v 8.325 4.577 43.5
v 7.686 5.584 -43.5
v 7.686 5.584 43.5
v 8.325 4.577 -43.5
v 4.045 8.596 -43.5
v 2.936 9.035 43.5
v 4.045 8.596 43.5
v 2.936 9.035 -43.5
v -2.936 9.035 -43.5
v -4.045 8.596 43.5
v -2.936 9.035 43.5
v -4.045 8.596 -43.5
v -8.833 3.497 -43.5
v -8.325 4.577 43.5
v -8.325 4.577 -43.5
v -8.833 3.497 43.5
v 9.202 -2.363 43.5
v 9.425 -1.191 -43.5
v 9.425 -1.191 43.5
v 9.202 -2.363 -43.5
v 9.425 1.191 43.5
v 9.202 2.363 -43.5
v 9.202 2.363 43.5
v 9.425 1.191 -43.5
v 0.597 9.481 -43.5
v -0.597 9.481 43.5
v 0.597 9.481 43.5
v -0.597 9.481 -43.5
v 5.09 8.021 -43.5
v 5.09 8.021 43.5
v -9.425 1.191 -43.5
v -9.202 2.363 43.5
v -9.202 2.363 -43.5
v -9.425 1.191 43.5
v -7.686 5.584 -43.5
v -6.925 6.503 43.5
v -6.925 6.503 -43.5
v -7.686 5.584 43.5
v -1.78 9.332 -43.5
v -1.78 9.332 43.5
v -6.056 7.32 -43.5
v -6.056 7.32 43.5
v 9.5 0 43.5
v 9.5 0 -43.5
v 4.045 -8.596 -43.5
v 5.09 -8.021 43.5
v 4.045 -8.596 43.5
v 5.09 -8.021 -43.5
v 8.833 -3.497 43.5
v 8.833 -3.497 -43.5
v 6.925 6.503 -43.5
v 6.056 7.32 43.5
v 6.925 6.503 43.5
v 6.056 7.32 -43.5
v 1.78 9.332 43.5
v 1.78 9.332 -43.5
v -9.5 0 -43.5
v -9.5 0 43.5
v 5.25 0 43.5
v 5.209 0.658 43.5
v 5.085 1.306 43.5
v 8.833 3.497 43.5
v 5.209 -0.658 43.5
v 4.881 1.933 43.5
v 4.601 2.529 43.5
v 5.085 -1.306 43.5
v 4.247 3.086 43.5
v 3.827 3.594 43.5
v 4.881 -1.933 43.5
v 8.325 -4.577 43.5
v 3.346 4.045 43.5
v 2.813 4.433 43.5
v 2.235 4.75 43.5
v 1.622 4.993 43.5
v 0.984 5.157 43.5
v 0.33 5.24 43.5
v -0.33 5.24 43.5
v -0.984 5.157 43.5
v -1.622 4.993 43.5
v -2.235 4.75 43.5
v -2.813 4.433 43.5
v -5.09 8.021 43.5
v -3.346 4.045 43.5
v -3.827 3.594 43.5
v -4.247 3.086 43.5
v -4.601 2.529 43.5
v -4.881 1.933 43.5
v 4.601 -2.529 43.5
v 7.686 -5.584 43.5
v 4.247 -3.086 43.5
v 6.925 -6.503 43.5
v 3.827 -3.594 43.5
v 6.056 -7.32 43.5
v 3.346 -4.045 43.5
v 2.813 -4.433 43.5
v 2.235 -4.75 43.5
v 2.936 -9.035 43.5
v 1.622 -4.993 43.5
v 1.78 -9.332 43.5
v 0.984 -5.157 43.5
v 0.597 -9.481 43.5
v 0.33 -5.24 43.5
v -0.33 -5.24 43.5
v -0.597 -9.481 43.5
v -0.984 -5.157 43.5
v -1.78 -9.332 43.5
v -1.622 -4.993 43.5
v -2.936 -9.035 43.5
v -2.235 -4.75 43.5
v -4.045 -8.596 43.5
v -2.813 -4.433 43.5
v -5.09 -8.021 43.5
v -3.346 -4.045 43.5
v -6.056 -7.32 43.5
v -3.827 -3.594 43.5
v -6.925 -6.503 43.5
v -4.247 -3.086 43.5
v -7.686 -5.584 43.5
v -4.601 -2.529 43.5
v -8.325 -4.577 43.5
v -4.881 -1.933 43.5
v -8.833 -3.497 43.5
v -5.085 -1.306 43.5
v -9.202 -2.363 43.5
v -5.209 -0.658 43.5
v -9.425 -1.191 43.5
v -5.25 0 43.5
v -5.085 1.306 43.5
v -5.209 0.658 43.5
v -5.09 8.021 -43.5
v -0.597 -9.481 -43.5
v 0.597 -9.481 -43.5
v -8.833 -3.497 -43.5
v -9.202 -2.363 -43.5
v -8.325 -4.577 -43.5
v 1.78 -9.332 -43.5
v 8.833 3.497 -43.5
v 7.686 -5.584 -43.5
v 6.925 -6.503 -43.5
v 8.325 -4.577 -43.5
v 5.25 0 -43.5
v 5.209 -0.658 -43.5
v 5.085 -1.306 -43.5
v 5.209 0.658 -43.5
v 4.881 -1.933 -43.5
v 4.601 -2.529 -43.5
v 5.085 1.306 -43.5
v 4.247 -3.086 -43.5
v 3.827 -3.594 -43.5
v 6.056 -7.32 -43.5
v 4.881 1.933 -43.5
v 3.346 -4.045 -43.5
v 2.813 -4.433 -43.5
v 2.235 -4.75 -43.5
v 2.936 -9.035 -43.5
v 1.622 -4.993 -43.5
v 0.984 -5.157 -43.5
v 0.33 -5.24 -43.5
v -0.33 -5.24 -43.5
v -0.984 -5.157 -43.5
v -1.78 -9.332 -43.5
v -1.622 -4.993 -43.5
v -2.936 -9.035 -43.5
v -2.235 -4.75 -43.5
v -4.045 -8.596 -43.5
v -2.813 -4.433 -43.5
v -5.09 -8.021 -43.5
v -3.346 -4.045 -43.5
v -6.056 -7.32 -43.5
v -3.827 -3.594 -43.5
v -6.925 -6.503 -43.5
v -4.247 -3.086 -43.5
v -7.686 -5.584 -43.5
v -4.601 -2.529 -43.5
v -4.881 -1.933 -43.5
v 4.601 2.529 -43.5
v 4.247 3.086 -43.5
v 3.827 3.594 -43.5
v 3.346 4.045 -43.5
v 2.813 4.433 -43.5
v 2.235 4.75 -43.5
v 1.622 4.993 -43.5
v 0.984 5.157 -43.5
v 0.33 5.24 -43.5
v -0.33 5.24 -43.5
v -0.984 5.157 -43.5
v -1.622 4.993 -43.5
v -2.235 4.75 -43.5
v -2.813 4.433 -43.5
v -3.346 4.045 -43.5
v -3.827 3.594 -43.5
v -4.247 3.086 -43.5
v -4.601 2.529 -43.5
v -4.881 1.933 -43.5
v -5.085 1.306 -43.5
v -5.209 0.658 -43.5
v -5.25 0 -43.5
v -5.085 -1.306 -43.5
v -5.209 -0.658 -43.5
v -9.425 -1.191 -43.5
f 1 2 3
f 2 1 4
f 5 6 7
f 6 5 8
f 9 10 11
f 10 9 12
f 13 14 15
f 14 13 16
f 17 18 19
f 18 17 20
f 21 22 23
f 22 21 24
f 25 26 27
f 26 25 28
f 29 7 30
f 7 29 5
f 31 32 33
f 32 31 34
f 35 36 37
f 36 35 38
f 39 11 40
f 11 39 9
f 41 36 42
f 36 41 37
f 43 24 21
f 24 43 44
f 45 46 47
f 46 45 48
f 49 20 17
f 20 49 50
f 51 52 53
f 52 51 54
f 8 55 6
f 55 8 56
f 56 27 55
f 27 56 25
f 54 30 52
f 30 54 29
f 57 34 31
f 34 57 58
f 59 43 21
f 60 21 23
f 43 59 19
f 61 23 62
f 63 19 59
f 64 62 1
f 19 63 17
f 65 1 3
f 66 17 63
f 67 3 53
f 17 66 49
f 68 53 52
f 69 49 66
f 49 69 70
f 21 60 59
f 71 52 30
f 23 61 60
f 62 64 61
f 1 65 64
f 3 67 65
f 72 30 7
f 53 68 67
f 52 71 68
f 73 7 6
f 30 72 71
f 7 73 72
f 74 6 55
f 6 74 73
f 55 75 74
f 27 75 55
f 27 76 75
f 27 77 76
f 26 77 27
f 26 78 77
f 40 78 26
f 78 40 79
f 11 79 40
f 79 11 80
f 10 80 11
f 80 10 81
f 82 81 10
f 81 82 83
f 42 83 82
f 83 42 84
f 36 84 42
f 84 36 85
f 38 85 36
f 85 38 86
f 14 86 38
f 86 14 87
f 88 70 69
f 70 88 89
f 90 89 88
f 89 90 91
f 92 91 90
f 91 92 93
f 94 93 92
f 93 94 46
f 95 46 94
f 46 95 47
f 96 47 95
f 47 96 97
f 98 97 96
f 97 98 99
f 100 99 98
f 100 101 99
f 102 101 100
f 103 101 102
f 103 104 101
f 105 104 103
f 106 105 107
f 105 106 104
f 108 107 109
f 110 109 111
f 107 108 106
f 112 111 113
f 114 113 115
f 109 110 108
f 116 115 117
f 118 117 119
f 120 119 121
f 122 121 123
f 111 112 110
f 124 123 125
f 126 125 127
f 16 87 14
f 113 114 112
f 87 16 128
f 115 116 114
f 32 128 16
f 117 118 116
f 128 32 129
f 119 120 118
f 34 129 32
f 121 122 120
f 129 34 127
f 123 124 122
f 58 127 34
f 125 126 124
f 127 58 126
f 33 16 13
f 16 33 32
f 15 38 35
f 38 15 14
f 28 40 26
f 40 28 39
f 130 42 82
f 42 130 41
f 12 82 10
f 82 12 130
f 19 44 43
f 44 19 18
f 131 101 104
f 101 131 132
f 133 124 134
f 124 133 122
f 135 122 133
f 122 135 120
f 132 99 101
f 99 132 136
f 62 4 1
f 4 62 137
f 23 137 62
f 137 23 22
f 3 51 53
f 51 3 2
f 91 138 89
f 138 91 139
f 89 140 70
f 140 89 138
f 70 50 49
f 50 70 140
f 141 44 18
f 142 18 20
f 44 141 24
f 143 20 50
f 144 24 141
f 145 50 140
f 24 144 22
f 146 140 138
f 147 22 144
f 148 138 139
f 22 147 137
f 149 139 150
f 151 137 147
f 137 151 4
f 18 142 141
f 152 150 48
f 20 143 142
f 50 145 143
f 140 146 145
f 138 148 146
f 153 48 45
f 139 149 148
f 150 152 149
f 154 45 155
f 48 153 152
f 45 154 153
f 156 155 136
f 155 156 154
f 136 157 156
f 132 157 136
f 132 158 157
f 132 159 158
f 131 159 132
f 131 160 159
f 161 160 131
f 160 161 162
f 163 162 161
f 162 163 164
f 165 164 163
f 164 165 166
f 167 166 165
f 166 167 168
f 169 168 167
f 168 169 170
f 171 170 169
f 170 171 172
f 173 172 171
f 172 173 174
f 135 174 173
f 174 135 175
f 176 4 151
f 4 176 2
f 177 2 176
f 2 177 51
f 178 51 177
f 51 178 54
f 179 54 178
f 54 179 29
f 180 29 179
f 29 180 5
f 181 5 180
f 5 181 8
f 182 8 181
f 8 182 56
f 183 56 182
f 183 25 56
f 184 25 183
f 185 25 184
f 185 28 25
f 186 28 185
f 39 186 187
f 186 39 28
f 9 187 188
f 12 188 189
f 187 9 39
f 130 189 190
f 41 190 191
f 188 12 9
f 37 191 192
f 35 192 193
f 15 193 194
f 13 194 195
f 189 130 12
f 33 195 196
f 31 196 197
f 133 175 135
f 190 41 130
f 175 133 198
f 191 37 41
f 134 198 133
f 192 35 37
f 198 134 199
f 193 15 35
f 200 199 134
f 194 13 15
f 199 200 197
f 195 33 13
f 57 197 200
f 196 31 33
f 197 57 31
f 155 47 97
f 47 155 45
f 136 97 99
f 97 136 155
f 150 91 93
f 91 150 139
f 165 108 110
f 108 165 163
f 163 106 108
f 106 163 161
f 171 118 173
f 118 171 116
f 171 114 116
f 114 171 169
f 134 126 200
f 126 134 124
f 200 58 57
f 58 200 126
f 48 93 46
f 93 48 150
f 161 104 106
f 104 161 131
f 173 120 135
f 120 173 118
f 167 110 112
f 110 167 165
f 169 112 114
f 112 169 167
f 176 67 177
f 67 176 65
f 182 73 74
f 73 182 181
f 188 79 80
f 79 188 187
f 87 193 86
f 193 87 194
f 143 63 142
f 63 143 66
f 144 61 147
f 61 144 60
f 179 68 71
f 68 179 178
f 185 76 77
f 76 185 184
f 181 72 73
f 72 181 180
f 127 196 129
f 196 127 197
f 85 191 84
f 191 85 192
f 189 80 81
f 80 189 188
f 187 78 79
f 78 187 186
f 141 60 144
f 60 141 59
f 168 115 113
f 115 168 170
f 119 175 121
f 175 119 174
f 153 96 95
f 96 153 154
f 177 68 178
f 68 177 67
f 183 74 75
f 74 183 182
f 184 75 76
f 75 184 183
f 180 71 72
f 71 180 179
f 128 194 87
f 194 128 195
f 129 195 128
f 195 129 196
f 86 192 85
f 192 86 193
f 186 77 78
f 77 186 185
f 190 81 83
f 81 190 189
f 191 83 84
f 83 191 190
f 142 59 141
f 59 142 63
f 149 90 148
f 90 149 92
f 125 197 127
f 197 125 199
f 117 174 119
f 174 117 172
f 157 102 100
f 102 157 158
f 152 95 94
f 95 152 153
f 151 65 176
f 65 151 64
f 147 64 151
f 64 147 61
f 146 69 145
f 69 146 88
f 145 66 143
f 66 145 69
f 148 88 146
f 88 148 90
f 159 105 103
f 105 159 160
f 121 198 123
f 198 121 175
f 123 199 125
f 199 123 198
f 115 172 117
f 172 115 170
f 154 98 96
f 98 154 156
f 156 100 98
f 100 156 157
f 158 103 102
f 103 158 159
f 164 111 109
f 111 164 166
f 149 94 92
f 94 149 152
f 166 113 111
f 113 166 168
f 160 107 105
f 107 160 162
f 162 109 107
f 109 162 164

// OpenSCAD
$fn = 50;


difference() {
	union() {
		translate(v = [0, 0, -43.5000000000]) {
			cylinder(h = 87, r = 9.5000000000);
		}
	}
	union() {
		translate(v = [0, 0, -100.0000000000]) {
			cylinder(h = 200, r = 5.2500000000);
		}
	}
}
